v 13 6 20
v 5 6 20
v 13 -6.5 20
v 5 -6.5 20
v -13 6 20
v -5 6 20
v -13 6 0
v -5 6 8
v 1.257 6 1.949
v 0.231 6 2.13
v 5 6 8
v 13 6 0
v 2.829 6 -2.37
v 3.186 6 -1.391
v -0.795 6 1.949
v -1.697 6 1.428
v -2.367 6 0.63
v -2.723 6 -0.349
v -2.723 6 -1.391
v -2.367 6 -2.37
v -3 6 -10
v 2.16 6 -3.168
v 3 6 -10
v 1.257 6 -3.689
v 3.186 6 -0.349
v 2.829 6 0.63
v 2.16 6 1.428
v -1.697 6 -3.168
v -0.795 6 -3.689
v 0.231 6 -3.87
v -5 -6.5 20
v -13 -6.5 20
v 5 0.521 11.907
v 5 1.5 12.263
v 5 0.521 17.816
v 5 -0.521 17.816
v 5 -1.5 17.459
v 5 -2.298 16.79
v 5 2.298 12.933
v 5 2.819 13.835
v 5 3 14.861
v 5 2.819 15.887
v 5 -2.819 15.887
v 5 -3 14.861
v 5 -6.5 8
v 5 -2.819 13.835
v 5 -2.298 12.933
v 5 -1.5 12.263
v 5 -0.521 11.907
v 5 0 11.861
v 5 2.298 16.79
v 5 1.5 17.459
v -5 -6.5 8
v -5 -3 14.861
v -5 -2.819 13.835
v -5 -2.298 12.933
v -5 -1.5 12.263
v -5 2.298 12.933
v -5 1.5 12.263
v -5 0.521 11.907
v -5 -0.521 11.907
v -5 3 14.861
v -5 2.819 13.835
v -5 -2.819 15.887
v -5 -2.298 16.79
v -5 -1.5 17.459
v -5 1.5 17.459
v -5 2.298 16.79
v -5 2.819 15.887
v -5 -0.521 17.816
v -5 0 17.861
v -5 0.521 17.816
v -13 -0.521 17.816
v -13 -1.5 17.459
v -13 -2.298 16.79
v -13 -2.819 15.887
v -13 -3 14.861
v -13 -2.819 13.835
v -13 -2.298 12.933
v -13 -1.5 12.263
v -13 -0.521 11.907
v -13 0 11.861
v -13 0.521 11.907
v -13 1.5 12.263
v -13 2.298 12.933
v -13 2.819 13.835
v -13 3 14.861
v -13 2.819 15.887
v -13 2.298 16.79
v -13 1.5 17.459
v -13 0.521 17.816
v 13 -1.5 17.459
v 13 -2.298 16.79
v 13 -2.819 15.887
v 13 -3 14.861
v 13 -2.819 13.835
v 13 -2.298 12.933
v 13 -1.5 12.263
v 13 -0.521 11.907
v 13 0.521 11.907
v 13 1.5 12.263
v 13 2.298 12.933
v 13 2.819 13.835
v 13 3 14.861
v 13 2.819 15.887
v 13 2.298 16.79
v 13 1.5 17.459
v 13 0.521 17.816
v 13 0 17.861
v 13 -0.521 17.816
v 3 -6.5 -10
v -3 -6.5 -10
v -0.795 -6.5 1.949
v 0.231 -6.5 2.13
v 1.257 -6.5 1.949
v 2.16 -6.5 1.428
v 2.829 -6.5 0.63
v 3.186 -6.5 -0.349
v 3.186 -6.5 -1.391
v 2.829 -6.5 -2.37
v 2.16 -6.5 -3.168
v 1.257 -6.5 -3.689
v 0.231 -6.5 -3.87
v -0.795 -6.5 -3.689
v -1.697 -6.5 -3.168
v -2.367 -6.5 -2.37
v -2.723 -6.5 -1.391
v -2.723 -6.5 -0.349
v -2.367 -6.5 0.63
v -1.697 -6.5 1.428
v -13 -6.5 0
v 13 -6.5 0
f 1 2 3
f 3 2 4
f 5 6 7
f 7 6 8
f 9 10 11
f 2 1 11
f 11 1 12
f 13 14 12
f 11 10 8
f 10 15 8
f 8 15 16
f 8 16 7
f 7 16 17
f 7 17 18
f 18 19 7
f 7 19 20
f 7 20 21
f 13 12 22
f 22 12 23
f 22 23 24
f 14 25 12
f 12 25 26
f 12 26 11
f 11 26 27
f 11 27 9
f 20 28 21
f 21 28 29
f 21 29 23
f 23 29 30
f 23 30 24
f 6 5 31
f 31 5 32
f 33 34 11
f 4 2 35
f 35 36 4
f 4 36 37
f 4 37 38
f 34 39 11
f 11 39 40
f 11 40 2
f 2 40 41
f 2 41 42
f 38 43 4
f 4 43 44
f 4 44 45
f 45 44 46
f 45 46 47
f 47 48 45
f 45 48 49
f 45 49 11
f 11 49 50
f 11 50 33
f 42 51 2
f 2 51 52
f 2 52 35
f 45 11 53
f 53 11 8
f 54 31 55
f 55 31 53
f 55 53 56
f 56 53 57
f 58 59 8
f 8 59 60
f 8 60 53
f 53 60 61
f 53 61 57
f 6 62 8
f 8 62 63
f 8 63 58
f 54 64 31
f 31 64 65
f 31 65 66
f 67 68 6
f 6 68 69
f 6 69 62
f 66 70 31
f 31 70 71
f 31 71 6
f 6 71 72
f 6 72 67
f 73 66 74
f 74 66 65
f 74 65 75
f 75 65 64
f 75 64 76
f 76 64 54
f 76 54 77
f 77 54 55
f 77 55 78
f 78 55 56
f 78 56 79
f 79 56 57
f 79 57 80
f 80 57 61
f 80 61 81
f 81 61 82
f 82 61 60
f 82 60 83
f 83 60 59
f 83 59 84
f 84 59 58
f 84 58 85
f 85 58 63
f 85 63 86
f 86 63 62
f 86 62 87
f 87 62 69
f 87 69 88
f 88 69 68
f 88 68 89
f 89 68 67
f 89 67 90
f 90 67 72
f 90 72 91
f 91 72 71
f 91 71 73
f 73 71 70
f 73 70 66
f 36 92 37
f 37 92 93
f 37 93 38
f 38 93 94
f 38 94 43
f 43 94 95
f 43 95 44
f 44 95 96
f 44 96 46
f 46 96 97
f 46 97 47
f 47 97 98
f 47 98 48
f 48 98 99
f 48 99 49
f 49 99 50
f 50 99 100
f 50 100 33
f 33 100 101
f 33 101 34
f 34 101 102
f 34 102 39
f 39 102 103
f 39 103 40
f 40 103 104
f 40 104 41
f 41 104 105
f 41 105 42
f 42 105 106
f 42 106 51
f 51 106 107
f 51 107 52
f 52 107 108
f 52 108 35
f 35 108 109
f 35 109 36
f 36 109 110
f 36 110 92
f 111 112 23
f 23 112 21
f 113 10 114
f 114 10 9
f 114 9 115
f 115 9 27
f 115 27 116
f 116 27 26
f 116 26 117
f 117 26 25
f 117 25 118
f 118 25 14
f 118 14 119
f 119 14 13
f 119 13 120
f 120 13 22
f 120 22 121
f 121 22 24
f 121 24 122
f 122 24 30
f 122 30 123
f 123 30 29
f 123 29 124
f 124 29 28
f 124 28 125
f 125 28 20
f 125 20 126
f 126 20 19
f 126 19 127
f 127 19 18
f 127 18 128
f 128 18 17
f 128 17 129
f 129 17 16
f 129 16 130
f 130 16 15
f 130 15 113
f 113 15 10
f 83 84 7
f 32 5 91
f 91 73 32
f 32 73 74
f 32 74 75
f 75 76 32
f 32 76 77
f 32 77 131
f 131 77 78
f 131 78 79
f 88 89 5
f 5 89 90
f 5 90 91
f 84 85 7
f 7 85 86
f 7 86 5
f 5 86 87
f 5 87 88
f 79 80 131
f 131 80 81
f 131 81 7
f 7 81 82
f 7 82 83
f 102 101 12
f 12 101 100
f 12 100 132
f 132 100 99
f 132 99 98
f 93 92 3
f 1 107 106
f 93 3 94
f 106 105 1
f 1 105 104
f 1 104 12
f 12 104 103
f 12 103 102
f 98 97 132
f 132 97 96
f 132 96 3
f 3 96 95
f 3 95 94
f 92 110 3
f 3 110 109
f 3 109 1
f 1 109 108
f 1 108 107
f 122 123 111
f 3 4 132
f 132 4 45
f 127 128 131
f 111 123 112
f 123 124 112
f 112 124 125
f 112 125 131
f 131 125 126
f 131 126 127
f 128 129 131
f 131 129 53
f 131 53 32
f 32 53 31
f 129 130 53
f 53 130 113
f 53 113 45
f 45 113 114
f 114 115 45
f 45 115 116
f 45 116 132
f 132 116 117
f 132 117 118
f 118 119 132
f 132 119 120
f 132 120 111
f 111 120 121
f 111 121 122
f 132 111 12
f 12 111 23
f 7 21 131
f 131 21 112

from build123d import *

# Parameters (mm, degrees)
SKETCH_1_W           = 30
SKETCH_1_H           = 13.5
EXTRUDE_1_DEPTH      = 20
SKETCH_2_W           = 10
SKETCH_2_H           = 20.163242361
CUT_EXTRUDE_2_DEPTH  = 29.41214529
SKETCH_3_R           = 3
CUT_EXTRUDE_3_DEPTH  = 37.827299657
SKETCH_6_W           = 30
SKETCH_6_H           = 13.5
EXTRUDE_5_DEPTH      = 10
SKETCH_7_R           = 3
CUT_EXTRUDE_1_DEPTH  = 29.41214529
SKETCH_9_W           = 6.52399098
SKETCH_9_H           = 33.458140235
CUT_EXTRUDE_6_DEPTH  = 29.41214529
SKETCH_14_W          = 84.903926308
SKETCH_14_H          = 44.963333207
CUT_EXTRUDE_10_DEPTH = 1
CHAMFER1_SIZE        = 10


with BuildPart() as part:
    # Эскиз1 → Вытянуть1 (new body)
    with BuildSketch(Plane.XY):
        with Locations((0, -0.75)):
            Rectangle(SKETCH_1_W, SKETCH_1_H)
    extrude(amount=EXTRUDE_1_DEPTH)

    # Эскиз2 → Вытянуть2 (cut, through all)
    with BuildSketch(Plane.XZ.offset(7.5)):
        with Locations((0, 18.081621181)):
            Rectangle(SKETCH_2_W, SKETCH_2_H)
    extrude(amount=-CUT_EXTRUDE_2_DEPTH, mode=Mode.SUBTRACT)

    # Эскиз3 → Вытянуть3 (cut, through all)
    with BuildSketch(Plane(origin=(15, 0, 0), x_dir=(0, 0, -1), z_dir=(1, 0, 0))):
        with Locations(Location((-14.861357689, 0, 0), (0, 0, 90))):
            Circle(SKETCH_3_R)
    extrude(amount=-CUT_EXTRUDE_3_DEPTH, mode=Mode.SUBTRACT)

    # Эскиз6 → Вытянуть5 (add)
    with BuildSketch(Plane(origin=(0, 0, 0), x_dir=(-1, 0, 0), z_dir=(0, 0, -1))):
        with Locations((0, -0.75)):
            Rectangle(SKETCH_6_W, SKETCH_6_H)
    extrude(amount=EXTRUDE_5_DEPTH)

    # Эскиз7 → Вырез-Вытянуть1 (cut, through all)
    with BuildSketch(Plane(origin=(0, 6, 0), x_dir=(1, 0, 0), z_dir=(0, 1, 0))):
        with Locations(Location((0.231400022, 0.869933179, 0), (0, 0, 270))):
            Circle(SKETCH_7_R)
    extrude(amount=-CUT_EXTRUDE_1_DEPTH, mode=Mode.SUBTRACT)

    # Эскиз9 → Вытянуть6 (cut, through all)
    with BuildSketch(Plane(origin=(0, 6, 0), x_dir=(1, 0, 0), z_dir=(0, 1, 0))):
        with Locations((16.26199549, -3.329208479)):
            Rectangle(SKETCH_9_W, SKETCH_9_H)
        with Locations((-16.26199549, -3.329208479)):
            Rectangle(SKETCH_9_W, SKETCH_9_H)
    extrude(amount=-CUT_EXTRUDE_6_DEPTH, mode=Mode.SUBTRACT)

    # Эскиз14 → Вытянуть10 (cut)
    with BuildSketch(Plane.XZ.offset(7.5)):
        with Locations((0.061866905, -0.327668242)):
            Rectangle(SKETCH_14_W, SKETCH_14_H)
    extrude(amount=-CUT_EXTRUDE_10_DEPTH, mode=Mode.SUBTRACT)

    # Chamfer1
    chamfer1_edges = [part.edges().sort_by_distance(p)[0] for p in [
        (-13, -0.25, -10),
        (13, -0.25, -10),
    ]]
    chamfer(chamfer1_edges, length=CHAMFER1_SIZE)


solid = part.part
